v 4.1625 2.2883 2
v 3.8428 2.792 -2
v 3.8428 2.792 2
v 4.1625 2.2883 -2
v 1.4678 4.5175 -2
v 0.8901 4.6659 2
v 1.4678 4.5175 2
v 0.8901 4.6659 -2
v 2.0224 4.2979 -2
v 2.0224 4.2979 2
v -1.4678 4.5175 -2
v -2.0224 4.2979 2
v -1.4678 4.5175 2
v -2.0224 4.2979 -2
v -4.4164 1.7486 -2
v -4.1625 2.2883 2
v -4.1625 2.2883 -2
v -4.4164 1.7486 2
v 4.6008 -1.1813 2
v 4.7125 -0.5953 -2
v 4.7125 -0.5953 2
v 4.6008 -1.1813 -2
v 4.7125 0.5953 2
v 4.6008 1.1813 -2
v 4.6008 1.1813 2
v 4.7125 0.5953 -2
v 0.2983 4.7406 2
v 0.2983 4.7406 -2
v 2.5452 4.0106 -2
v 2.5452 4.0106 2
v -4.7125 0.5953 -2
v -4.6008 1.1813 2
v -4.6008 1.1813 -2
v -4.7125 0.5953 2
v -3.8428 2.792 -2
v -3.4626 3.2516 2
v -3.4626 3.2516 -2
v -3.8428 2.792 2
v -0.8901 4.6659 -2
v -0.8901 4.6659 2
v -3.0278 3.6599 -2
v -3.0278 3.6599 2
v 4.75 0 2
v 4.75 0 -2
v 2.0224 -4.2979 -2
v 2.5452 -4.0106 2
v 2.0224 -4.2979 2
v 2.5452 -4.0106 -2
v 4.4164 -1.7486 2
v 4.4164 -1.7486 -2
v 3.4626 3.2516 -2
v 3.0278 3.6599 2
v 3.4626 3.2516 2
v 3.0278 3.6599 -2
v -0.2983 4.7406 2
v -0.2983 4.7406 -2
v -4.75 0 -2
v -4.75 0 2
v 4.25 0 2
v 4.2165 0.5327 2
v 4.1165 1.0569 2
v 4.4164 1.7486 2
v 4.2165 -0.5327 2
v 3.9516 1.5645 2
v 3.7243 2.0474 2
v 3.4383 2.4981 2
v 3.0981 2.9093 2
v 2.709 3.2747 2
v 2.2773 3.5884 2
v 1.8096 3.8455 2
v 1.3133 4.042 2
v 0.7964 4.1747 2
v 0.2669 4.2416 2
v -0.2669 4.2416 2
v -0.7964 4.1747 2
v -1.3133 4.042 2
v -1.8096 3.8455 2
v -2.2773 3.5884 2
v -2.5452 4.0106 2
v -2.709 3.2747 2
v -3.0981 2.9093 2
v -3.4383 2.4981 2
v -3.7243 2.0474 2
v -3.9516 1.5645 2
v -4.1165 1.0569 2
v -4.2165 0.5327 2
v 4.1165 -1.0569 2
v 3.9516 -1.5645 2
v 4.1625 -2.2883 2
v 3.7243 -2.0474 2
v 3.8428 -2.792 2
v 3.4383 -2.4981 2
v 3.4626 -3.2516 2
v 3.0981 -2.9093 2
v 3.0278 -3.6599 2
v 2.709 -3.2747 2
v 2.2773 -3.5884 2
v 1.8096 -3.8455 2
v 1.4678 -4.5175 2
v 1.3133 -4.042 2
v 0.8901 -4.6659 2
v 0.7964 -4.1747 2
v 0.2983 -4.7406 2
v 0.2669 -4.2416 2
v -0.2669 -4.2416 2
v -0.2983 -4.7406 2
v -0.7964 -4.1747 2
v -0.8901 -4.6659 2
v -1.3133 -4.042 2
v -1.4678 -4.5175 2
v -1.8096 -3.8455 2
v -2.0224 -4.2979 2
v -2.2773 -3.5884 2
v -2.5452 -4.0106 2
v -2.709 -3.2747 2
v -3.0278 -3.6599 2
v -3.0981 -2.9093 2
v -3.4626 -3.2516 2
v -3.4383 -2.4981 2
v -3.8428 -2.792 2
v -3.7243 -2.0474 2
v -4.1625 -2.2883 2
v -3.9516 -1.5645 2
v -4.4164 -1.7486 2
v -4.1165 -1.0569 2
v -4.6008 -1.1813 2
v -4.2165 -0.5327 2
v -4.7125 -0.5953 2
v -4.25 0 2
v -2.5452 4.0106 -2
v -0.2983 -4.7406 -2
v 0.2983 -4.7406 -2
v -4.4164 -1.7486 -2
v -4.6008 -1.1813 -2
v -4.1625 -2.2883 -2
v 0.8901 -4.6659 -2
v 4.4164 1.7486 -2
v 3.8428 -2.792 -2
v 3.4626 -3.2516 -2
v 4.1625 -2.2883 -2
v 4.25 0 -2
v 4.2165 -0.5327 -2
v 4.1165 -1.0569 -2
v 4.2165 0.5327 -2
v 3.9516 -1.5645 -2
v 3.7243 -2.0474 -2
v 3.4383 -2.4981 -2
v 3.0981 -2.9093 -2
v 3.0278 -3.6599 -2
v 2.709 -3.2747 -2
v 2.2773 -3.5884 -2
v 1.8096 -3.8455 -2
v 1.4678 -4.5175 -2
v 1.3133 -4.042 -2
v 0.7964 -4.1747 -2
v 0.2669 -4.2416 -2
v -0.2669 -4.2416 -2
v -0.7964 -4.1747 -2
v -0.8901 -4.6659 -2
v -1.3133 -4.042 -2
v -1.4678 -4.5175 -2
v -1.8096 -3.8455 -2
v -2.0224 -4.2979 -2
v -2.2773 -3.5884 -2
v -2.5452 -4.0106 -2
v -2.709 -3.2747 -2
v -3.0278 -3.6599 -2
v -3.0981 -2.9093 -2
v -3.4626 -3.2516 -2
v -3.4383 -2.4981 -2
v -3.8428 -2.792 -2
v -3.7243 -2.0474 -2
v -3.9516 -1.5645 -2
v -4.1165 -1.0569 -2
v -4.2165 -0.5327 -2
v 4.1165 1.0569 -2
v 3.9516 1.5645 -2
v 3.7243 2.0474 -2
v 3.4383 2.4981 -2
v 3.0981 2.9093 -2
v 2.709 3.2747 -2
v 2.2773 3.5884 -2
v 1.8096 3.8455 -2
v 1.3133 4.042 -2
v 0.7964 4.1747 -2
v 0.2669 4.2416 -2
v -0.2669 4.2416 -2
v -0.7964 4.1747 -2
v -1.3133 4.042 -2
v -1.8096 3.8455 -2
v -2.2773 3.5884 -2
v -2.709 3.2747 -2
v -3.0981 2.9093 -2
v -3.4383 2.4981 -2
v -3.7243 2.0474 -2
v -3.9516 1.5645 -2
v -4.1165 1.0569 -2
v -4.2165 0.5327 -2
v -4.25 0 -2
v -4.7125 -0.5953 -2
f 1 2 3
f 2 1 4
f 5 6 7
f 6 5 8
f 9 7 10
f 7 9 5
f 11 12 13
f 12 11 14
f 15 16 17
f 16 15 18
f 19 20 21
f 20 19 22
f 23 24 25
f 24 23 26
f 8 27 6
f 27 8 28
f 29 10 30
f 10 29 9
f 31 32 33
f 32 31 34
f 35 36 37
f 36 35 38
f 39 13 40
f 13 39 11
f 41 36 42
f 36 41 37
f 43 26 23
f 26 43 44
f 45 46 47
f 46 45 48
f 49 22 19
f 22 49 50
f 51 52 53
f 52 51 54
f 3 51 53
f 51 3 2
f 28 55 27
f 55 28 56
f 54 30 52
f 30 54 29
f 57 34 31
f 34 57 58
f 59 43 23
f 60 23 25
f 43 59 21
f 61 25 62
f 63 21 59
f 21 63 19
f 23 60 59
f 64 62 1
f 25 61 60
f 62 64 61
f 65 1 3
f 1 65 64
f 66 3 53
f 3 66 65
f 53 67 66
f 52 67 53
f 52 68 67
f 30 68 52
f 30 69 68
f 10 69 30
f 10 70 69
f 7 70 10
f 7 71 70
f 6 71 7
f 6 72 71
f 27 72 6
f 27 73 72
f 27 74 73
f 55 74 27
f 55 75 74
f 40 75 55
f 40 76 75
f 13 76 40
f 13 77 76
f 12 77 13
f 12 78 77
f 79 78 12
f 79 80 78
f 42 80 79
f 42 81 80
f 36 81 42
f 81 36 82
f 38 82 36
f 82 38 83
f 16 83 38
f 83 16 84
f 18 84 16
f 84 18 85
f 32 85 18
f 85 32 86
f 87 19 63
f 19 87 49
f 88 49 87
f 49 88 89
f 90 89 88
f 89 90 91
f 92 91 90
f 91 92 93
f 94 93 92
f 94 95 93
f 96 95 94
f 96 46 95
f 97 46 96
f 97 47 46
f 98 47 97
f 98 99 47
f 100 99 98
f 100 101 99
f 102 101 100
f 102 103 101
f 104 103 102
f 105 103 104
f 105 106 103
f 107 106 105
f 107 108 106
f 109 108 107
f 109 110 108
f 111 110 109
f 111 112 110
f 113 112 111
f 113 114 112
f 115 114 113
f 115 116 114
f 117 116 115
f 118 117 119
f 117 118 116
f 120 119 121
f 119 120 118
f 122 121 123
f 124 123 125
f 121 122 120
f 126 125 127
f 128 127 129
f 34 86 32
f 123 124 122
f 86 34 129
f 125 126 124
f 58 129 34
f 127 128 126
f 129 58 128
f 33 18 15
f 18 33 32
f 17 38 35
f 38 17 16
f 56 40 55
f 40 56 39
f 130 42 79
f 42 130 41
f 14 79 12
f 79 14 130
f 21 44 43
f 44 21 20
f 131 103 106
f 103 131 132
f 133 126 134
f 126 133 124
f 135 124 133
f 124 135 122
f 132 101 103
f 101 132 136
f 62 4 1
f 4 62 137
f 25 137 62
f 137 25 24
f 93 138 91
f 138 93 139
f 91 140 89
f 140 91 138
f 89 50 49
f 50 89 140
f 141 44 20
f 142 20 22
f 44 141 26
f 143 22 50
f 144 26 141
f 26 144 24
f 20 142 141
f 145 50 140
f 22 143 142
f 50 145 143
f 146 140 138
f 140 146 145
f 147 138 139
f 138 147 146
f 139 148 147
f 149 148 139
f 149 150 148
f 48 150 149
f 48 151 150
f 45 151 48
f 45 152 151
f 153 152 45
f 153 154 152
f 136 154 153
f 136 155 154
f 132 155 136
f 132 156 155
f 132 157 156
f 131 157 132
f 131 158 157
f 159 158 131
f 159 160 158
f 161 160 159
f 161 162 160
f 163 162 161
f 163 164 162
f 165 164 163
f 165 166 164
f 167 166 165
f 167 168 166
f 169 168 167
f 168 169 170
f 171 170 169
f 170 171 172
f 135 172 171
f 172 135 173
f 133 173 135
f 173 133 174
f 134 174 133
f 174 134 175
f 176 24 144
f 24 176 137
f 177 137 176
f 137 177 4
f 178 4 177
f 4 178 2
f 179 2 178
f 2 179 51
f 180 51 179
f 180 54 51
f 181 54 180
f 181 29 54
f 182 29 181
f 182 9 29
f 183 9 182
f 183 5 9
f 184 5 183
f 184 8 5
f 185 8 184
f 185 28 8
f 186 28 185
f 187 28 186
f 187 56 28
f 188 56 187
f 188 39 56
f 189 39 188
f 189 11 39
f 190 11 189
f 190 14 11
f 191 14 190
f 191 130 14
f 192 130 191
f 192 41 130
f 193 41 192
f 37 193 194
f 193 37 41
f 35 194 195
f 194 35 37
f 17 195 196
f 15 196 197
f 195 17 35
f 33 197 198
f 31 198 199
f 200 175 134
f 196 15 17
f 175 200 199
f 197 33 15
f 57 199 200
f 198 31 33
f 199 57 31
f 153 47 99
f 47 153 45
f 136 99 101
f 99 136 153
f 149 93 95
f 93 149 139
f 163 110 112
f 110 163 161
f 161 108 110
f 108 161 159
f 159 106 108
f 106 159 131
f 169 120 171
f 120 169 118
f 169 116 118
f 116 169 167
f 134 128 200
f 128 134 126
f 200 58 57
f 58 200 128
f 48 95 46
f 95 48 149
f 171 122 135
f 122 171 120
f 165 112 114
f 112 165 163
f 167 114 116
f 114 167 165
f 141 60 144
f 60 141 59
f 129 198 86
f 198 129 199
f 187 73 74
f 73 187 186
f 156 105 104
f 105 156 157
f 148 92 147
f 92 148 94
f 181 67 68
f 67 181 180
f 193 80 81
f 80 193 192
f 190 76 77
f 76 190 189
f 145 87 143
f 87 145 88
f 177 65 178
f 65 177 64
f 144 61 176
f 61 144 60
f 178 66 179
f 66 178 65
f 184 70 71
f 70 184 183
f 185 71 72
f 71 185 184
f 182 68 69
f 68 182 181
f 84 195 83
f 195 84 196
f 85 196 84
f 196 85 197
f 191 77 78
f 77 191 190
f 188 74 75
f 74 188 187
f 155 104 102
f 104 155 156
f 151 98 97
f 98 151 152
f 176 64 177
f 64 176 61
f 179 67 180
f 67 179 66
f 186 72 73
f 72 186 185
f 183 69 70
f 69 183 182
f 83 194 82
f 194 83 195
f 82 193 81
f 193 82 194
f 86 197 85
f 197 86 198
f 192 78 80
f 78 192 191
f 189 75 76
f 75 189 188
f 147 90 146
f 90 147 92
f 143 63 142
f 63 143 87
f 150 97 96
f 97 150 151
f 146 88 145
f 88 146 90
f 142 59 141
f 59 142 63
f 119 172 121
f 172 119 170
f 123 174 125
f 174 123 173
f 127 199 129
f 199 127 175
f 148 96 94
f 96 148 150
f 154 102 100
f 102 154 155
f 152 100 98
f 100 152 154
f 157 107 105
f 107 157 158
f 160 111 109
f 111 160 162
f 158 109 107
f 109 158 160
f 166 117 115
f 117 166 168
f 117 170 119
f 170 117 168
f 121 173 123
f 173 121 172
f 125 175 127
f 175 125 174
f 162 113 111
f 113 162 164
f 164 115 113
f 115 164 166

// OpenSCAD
$fn = 50;


difference() {
	union() {
		translate(v = [0, 0, -2.0000000000]) {
			cylinder(h = 4, r = 4.7500000000);
		}
	}
	union() {
		translate(v = [0, 0, -100.0000000000]) {
			cylinder(h = 200, r = 4.2500000000);
		}
	}
}
